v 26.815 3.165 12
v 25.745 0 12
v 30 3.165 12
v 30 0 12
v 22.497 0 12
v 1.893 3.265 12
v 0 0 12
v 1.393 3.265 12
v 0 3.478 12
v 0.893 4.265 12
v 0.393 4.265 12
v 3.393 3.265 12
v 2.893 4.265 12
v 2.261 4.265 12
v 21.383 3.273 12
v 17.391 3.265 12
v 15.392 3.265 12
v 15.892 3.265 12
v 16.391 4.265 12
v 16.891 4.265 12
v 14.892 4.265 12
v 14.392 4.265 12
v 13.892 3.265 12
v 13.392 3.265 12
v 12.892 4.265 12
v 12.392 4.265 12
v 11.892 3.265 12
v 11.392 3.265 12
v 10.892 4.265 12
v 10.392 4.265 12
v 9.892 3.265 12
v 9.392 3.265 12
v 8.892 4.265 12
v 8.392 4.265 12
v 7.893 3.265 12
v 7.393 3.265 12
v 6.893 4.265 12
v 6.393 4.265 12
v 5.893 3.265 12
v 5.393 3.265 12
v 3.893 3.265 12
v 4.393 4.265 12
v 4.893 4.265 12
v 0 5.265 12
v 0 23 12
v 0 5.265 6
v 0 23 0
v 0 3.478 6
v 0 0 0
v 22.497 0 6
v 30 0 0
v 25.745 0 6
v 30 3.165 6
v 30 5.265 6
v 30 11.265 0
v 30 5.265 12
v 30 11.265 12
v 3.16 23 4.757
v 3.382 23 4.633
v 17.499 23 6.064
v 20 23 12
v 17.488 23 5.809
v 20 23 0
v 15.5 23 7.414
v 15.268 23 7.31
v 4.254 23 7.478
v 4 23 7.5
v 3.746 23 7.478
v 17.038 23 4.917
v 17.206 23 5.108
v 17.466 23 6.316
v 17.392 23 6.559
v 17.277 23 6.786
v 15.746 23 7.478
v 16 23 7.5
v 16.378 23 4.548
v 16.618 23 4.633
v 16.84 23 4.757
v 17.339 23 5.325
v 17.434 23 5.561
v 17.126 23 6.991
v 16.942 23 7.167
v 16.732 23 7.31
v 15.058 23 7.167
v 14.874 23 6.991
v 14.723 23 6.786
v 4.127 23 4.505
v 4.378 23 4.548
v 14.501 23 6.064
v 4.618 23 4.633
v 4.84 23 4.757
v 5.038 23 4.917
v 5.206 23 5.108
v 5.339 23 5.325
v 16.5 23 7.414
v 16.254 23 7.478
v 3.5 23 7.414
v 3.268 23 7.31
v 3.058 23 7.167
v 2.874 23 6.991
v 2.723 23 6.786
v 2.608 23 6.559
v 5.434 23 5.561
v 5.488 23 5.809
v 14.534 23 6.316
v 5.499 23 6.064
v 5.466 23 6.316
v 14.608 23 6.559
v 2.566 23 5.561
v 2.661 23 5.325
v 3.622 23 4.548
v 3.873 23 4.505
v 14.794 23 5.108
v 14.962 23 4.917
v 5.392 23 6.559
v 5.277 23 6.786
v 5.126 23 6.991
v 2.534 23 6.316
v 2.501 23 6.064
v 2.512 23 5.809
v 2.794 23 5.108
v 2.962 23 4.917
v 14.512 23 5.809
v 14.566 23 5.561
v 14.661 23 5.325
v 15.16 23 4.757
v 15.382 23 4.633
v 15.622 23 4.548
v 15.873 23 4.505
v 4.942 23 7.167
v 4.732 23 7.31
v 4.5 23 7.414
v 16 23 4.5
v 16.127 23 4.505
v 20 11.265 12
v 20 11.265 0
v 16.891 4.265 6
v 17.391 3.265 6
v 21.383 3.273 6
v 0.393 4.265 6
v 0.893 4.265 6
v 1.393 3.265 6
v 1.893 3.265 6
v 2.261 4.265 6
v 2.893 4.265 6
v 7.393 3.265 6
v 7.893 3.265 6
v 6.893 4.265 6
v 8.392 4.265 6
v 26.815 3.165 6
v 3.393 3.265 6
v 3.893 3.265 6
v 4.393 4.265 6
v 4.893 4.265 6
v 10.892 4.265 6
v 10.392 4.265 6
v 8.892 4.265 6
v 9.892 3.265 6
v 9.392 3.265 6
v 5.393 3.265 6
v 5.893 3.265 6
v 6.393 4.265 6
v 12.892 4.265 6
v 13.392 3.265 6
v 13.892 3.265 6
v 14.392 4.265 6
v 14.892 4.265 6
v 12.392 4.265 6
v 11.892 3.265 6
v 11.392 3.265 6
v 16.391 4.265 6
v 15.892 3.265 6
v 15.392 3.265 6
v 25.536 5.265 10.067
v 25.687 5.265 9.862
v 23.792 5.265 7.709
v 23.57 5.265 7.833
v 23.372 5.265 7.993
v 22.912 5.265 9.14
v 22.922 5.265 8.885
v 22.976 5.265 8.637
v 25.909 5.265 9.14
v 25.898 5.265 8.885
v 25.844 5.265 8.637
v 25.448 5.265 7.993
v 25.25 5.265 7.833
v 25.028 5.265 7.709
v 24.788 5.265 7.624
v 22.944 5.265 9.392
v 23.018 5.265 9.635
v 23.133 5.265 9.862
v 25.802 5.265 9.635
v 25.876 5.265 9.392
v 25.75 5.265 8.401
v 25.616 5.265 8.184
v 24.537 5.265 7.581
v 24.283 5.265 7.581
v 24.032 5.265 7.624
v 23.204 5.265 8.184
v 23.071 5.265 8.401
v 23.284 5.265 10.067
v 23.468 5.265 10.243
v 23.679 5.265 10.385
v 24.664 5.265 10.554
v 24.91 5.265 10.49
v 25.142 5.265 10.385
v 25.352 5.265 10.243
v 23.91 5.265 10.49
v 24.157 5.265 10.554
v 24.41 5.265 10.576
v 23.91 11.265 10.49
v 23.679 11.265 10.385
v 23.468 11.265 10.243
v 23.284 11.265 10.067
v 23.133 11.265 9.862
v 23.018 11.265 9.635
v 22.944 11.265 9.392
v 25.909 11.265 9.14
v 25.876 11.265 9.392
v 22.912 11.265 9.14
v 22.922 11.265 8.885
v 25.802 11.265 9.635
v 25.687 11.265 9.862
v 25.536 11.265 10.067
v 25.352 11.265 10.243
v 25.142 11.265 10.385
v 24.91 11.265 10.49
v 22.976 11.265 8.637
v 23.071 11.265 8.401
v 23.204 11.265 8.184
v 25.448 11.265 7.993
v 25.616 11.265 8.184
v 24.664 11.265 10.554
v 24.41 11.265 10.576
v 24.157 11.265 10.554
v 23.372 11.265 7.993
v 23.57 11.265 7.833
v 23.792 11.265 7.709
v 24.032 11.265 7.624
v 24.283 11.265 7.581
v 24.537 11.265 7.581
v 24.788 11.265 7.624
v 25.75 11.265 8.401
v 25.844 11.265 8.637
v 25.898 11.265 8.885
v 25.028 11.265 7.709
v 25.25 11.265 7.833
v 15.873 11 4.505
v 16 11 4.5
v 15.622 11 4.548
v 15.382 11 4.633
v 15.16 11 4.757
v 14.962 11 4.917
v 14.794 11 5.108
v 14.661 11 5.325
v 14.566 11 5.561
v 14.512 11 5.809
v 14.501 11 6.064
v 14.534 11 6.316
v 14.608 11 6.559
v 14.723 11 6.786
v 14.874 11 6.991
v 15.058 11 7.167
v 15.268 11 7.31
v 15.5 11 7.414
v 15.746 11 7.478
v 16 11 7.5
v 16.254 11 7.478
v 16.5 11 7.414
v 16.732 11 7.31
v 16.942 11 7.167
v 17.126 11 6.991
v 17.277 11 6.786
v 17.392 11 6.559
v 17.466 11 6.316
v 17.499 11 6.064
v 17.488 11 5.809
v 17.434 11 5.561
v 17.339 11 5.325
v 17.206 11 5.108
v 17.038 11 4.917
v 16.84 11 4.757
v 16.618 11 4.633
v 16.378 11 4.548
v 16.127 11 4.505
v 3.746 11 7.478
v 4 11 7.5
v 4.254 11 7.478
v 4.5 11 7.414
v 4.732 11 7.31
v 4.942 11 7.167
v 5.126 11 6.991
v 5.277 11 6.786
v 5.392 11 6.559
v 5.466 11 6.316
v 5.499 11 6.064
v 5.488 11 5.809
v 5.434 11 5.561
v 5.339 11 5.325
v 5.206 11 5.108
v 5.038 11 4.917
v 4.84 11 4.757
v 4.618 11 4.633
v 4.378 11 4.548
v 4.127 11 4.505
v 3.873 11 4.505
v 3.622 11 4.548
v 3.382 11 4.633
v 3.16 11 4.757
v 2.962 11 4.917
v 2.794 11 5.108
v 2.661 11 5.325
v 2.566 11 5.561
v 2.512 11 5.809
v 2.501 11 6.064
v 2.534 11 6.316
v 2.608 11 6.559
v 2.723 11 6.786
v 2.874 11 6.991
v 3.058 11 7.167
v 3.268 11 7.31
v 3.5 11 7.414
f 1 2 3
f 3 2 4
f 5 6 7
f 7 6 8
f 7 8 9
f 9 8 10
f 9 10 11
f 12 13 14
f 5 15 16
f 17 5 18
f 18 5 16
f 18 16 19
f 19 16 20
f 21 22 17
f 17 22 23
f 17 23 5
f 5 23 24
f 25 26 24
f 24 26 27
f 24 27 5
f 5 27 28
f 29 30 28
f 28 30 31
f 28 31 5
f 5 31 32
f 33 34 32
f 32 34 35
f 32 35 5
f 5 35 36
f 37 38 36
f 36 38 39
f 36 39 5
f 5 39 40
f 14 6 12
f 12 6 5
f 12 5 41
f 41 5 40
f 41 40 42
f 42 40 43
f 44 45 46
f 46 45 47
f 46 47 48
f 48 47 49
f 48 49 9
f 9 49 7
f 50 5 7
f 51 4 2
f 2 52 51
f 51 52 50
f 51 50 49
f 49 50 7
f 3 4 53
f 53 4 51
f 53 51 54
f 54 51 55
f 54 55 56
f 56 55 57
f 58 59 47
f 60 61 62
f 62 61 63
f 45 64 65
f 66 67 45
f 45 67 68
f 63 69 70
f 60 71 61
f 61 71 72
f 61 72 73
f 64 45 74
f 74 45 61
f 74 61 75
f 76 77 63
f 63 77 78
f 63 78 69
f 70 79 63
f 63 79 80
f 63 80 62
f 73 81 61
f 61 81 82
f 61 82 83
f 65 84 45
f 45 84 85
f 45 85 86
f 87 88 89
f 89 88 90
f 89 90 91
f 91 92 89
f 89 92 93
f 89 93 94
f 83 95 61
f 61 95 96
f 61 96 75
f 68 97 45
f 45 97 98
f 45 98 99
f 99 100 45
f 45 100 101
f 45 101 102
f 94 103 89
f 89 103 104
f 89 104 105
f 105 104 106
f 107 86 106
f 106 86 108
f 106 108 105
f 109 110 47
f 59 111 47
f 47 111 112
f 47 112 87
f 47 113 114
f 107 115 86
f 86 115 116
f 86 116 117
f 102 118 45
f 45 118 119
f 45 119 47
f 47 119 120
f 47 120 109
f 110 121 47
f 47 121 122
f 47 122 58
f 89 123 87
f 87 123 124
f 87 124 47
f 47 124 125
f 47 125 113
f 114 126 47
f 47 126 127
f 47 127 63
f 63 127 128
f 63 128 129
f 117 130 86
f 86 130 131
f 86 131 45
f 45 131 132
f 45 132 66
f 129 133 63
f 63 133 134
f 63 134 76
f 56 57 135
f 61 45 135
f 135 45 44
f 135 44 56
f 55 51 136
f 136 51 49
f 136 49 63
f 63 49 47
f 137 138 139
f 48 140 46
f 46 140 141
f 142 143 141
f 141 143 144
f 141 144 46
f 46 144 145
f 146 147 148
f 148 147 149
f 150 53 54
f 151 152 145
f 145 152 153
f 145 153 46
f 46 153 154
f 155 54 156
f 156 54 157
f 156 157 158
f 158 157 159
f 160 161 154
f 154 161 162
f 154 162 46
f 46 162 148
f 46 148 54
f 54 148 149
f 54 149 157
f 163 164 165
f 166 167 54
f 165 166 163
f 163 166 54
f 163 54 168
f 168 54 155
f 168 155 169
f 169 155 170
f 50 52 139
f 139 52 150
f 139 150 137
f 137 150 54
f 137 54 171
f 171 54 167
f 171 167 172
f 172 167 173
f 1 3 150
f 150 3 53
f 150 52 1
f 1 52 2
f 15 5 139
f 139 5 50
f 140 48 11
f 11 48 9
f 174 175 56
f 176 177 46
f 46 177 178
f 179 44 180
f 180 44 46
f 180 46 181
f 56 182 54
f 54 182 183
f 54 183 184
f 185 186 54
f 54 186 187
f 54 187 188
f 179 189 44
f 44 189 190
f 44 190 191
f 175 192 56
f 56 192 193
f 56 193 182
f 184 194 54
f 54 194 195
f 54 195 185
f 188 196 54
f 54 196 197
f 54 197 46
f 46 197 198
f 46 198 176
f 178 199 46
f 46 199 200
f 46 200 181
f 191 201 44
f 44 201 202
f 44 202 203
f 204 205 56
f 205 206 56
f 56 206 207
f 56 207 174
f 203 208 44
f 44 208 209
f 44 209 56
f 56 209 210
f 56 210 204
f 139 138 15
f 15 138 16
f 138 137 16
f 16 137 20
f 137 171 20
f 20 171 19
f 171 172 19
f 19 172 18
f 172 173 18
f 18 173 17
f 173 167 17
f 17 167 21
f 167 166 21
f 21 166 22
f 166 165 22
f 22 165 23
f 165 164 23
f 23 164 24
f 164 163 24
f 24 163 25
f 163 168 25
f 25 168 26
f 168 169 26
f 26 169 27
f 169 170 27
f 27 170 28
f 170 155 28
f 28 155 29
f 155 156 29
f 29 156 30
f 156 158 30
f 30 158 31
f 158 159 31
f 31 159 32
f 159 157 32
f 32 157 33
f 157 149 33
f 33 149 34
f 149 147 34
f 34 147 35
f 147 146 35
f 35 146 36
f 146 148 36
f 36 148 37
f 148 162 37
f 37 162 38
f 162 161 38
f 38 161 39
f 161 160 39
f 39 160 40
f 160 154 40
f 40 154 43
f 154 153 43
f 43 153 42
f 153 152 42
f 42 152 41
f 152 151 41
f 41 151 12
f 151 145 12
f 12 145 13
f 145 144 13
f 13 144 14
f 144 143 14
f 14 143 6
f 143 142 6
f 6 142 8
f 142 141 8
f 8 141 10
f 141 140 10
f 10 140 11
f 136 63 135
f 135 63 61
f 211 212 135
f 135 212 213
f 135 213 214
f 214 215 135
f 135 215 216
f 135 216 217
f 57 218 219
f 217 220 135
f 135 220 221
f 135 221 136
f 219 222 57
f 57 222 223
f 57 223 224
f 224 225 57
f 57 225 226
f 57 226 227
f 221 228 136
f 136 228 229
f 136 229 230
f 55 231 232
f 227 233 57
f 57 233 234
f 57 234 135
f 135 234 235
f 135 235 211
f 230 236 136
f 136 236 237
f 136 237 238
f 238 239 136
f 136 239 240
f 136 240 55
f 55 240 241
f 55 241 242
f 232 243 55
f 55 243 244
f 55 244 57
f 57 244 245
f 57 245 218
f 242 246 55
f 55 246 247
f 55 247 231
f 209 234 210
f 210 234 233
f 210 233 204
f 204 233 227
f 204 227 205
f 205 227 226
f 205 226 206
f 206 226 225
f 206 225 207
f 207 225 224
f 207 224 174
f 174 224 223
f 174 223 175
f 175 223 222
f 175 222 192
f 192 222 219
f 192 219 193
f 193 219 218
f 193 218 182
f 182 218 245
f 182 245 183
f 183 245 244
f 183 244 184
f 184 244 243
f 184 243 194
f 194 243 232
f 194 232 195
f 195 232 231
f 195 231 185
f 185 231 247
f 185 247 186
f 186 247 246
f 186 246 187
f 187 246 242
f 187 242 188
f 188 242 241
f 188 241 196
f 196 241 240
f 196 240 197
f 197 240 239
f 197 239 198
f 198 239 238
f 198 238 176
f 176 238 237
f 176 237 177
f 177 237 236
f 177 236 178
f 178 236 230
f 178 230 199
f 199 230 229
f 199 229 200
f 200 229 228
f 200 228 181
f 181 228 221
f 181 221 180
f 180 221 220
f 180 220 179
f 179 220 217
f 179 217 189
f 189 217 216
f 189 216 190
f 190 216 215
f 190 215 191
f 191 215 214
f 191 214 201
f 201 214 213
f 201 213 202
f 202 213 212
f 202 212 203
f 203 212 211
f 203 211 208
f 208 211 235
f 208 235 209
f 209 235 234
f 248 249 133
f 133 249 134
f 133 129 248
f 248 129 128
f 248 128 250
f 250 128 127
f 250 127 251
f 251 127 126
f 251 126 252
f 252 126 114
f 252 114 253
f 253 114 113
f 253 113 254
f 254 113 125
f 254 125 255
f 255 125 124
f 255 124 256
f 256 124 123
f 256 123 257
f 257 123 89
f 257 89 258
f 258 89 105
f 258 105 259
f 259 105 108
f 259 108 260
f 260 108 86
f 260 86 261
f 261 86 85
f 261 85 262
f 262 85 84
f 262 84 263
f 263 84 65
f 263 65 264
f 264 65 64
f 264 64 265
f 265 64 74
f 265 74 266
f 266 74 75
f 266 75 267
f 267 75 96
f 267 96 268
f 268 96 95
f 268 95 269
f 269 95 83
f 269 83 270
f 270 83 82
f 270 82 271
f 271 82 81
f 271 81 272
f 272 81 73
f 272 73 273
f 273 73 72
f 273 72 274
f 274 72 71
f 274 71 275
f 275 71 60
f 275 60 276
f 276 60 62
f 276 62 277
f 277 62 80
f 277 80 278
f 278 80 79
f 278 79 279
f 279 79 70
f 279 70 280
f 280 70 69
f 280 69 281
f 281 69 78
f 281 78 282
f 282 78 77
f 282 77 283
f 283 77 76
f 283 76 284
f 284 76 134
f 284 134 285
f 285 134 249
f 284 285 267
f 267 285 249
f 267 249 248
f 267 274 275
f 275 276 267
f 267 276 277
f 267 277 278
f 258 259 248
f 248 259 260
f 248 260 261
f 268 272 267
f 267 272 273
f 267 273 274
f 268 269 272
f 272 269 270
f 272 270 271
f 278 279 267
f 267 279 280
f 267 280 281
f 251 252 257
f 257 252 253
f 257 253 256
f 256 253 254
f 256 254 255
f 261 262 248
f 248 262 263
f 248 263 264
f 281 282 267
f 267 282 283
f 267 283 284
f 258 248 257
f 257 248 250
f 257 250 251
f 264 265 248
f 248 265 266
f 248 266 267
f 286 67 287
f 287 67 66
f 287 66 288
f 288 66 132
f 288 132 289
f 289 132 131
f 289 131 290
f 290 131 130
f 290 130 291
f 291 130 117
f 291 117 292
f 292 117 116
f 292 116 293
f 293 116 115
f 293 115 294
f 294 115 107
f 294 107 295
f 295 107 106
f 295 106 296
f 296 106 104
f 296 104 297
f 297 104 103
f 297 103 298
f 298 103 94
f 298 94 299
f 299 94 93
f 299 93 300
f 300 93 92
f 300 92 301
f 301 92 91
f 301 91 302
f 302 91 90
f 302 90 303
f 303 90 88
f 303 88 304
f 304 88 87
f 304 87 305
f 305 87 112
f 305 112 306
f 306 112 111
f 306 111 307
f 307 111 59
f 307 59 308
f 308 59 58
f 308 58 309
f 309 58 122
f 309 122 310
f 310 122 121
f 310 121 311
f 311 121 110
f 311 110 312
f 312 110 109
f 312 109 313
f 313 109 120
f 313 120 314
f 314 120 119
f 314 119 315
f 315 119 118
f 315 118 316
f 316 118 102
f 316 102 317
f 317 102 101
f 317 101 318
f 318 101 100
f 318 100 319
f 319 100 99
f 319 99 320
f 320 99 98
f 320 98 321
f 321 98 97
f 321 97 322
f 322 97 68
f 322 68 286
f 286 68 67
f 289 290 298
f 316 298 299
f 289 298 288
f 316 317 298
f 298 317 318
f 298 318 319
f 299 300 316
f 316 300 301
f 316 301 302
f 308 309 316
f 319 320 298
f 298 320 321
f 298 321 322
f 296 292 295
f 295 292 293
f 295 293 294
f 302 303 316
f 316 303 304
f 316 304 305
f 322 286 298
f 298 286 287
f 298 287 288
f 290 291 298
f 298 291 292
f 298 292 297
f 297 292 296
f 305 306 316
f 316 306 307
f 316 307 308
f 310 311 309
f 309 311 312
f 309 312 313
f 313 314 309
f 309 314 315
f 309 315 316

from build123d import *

# Parameters (mm, degrees)
SKETCH_2_W          = 30
SKETCH_2_H          = 23
EXTRUDE_1_DEPTH     = 12
CUT_EXTRUDE_1_DEPTH = 6
SKETCH_4_W          = 15.467270909
SKETCH_4_H          = 13.987209034
CUT_EXTRUDE_2_DEPTH = 40.66106403
SKETCH_5_R          = 1.5
CUT_EXTRUDE_3_DEPTH = 8
SKETCH_6_R          = 1.5
CUT_EXTRUDE_4_DEPTH = 12


with BuildPart() as part:
    # 草图2 → 凸台-拉伸1 (new body)
    with BuildSketch(Plane.XY):
        with Locations((15, 11.5)):
            Rectangle(SKETCH_2_W, SKETCH_2_H)
    extrude(amount=EXTRUDE_1_DEPTH)

    # 草图3 → 切除-拉伸1 (cut)
    with BuildSketch(Plane.XY.offset(12)):
        Polygon((-0.106519248, 5.265031781), (32.137743655, 5.265031781), (32.137743655, 3.165031781), (26.814729775, 3.165031781), (25.621504988, -0.36450698), (22.621504988, -0.36450698), (21.382763952, 3.273233944), (17.391329844, 3.265031781), (16.891449339, 4.265031781), (16.391449339, 4.265031781), (15.891568834, 3.265031781), (15.391568834, 3.265031781), (14.891688328, 4.265031781), (14.391688328, 4.265031781), (13.891807823, 3.265031781), (13.391807823, 3.265031781), (12.891927318, 4.265031781), (12.391927318, 4.265031781), (11.892046813, 3.265031781), (11.392046813, 3.265031781), (10.892166308, 4.265031781), (10.392166308, 4.265031781), (9.892285803, 3.265031781), (9.392285803, 3.265031781), (8.892405298, 4.265031781), (8.392405298, 4.265031781), (7.892524793, 3.265031781), (7.392524793, 3.265031781), (6.892644288, 4.265031781), (6.392644288, 4.265031781), (5.892763783, 3.265031781), (5.392763783, 3.265031781), (4.892883278, 4.265031781), (4.392883278, 4.265031781), (3.893002773, 3.265031781), (3.393002773, 3.265031781), (2.893122268, 4.265031781), (2.260638047, 4.265031781), (1.893241763, 3.265031781), (1.393241763, 3.265031781), (0.893361258, 4.265031781), (0.393361258, 4.265031781), (-0.106519248, 3.265031781), align=None)
    extrude(amount=-CUT_EXTRUDE_1_DEPTH, mode=Mode.SUBTRACT)

    # 草图4 → 切除-拉伸2 (cut, through all)
    with BuildSketch(Plane.XY.offset(12)):
        with Locations((27.733635454, 18.258636298)):
            Rectangle(SKETCH_4_W, SKETCH_4_H)
    extrude(amount=-CUT_EXTRUDE_2_DEPTH, mode=Mode.SUBTRACT)

    # 草图5 → 切除-拉伸3 (cut)
    with BuildSketch(Plane(origin=(0, 11.265031781, 0), x_dir=(1, 0, 0), z_dir=(0, 1, 0))):
        with Locations(Location((24.410160755, -9.07584536, 0), (0, 0, 270))):
            Circle(SKETCH_5_R)
    extrude(amount=-CUT_EXTRUDE_3_DEPTH, mode=Mode.SUBTRACT)

    # 草图6 → 切除-拉伸4 (cut)
    with BuildSketch(Plane(origin=(0, 23, 0), x_dir=(1, 0, 0), z_dir=(0, 1, 0))):
        with Locations(Location((4, -6, 0), (0, 0, 270))):
            Circle(SKETCH_6_R)
        with Locations(Location((16, -6, 0), (0, 0, 90))):
            Circle(SKETCH_6_R)
    extrude(amount=-CUT_EXTRUDE_4_DEPTH, mode=Mode.SUBTRACT)


solid = part.part
